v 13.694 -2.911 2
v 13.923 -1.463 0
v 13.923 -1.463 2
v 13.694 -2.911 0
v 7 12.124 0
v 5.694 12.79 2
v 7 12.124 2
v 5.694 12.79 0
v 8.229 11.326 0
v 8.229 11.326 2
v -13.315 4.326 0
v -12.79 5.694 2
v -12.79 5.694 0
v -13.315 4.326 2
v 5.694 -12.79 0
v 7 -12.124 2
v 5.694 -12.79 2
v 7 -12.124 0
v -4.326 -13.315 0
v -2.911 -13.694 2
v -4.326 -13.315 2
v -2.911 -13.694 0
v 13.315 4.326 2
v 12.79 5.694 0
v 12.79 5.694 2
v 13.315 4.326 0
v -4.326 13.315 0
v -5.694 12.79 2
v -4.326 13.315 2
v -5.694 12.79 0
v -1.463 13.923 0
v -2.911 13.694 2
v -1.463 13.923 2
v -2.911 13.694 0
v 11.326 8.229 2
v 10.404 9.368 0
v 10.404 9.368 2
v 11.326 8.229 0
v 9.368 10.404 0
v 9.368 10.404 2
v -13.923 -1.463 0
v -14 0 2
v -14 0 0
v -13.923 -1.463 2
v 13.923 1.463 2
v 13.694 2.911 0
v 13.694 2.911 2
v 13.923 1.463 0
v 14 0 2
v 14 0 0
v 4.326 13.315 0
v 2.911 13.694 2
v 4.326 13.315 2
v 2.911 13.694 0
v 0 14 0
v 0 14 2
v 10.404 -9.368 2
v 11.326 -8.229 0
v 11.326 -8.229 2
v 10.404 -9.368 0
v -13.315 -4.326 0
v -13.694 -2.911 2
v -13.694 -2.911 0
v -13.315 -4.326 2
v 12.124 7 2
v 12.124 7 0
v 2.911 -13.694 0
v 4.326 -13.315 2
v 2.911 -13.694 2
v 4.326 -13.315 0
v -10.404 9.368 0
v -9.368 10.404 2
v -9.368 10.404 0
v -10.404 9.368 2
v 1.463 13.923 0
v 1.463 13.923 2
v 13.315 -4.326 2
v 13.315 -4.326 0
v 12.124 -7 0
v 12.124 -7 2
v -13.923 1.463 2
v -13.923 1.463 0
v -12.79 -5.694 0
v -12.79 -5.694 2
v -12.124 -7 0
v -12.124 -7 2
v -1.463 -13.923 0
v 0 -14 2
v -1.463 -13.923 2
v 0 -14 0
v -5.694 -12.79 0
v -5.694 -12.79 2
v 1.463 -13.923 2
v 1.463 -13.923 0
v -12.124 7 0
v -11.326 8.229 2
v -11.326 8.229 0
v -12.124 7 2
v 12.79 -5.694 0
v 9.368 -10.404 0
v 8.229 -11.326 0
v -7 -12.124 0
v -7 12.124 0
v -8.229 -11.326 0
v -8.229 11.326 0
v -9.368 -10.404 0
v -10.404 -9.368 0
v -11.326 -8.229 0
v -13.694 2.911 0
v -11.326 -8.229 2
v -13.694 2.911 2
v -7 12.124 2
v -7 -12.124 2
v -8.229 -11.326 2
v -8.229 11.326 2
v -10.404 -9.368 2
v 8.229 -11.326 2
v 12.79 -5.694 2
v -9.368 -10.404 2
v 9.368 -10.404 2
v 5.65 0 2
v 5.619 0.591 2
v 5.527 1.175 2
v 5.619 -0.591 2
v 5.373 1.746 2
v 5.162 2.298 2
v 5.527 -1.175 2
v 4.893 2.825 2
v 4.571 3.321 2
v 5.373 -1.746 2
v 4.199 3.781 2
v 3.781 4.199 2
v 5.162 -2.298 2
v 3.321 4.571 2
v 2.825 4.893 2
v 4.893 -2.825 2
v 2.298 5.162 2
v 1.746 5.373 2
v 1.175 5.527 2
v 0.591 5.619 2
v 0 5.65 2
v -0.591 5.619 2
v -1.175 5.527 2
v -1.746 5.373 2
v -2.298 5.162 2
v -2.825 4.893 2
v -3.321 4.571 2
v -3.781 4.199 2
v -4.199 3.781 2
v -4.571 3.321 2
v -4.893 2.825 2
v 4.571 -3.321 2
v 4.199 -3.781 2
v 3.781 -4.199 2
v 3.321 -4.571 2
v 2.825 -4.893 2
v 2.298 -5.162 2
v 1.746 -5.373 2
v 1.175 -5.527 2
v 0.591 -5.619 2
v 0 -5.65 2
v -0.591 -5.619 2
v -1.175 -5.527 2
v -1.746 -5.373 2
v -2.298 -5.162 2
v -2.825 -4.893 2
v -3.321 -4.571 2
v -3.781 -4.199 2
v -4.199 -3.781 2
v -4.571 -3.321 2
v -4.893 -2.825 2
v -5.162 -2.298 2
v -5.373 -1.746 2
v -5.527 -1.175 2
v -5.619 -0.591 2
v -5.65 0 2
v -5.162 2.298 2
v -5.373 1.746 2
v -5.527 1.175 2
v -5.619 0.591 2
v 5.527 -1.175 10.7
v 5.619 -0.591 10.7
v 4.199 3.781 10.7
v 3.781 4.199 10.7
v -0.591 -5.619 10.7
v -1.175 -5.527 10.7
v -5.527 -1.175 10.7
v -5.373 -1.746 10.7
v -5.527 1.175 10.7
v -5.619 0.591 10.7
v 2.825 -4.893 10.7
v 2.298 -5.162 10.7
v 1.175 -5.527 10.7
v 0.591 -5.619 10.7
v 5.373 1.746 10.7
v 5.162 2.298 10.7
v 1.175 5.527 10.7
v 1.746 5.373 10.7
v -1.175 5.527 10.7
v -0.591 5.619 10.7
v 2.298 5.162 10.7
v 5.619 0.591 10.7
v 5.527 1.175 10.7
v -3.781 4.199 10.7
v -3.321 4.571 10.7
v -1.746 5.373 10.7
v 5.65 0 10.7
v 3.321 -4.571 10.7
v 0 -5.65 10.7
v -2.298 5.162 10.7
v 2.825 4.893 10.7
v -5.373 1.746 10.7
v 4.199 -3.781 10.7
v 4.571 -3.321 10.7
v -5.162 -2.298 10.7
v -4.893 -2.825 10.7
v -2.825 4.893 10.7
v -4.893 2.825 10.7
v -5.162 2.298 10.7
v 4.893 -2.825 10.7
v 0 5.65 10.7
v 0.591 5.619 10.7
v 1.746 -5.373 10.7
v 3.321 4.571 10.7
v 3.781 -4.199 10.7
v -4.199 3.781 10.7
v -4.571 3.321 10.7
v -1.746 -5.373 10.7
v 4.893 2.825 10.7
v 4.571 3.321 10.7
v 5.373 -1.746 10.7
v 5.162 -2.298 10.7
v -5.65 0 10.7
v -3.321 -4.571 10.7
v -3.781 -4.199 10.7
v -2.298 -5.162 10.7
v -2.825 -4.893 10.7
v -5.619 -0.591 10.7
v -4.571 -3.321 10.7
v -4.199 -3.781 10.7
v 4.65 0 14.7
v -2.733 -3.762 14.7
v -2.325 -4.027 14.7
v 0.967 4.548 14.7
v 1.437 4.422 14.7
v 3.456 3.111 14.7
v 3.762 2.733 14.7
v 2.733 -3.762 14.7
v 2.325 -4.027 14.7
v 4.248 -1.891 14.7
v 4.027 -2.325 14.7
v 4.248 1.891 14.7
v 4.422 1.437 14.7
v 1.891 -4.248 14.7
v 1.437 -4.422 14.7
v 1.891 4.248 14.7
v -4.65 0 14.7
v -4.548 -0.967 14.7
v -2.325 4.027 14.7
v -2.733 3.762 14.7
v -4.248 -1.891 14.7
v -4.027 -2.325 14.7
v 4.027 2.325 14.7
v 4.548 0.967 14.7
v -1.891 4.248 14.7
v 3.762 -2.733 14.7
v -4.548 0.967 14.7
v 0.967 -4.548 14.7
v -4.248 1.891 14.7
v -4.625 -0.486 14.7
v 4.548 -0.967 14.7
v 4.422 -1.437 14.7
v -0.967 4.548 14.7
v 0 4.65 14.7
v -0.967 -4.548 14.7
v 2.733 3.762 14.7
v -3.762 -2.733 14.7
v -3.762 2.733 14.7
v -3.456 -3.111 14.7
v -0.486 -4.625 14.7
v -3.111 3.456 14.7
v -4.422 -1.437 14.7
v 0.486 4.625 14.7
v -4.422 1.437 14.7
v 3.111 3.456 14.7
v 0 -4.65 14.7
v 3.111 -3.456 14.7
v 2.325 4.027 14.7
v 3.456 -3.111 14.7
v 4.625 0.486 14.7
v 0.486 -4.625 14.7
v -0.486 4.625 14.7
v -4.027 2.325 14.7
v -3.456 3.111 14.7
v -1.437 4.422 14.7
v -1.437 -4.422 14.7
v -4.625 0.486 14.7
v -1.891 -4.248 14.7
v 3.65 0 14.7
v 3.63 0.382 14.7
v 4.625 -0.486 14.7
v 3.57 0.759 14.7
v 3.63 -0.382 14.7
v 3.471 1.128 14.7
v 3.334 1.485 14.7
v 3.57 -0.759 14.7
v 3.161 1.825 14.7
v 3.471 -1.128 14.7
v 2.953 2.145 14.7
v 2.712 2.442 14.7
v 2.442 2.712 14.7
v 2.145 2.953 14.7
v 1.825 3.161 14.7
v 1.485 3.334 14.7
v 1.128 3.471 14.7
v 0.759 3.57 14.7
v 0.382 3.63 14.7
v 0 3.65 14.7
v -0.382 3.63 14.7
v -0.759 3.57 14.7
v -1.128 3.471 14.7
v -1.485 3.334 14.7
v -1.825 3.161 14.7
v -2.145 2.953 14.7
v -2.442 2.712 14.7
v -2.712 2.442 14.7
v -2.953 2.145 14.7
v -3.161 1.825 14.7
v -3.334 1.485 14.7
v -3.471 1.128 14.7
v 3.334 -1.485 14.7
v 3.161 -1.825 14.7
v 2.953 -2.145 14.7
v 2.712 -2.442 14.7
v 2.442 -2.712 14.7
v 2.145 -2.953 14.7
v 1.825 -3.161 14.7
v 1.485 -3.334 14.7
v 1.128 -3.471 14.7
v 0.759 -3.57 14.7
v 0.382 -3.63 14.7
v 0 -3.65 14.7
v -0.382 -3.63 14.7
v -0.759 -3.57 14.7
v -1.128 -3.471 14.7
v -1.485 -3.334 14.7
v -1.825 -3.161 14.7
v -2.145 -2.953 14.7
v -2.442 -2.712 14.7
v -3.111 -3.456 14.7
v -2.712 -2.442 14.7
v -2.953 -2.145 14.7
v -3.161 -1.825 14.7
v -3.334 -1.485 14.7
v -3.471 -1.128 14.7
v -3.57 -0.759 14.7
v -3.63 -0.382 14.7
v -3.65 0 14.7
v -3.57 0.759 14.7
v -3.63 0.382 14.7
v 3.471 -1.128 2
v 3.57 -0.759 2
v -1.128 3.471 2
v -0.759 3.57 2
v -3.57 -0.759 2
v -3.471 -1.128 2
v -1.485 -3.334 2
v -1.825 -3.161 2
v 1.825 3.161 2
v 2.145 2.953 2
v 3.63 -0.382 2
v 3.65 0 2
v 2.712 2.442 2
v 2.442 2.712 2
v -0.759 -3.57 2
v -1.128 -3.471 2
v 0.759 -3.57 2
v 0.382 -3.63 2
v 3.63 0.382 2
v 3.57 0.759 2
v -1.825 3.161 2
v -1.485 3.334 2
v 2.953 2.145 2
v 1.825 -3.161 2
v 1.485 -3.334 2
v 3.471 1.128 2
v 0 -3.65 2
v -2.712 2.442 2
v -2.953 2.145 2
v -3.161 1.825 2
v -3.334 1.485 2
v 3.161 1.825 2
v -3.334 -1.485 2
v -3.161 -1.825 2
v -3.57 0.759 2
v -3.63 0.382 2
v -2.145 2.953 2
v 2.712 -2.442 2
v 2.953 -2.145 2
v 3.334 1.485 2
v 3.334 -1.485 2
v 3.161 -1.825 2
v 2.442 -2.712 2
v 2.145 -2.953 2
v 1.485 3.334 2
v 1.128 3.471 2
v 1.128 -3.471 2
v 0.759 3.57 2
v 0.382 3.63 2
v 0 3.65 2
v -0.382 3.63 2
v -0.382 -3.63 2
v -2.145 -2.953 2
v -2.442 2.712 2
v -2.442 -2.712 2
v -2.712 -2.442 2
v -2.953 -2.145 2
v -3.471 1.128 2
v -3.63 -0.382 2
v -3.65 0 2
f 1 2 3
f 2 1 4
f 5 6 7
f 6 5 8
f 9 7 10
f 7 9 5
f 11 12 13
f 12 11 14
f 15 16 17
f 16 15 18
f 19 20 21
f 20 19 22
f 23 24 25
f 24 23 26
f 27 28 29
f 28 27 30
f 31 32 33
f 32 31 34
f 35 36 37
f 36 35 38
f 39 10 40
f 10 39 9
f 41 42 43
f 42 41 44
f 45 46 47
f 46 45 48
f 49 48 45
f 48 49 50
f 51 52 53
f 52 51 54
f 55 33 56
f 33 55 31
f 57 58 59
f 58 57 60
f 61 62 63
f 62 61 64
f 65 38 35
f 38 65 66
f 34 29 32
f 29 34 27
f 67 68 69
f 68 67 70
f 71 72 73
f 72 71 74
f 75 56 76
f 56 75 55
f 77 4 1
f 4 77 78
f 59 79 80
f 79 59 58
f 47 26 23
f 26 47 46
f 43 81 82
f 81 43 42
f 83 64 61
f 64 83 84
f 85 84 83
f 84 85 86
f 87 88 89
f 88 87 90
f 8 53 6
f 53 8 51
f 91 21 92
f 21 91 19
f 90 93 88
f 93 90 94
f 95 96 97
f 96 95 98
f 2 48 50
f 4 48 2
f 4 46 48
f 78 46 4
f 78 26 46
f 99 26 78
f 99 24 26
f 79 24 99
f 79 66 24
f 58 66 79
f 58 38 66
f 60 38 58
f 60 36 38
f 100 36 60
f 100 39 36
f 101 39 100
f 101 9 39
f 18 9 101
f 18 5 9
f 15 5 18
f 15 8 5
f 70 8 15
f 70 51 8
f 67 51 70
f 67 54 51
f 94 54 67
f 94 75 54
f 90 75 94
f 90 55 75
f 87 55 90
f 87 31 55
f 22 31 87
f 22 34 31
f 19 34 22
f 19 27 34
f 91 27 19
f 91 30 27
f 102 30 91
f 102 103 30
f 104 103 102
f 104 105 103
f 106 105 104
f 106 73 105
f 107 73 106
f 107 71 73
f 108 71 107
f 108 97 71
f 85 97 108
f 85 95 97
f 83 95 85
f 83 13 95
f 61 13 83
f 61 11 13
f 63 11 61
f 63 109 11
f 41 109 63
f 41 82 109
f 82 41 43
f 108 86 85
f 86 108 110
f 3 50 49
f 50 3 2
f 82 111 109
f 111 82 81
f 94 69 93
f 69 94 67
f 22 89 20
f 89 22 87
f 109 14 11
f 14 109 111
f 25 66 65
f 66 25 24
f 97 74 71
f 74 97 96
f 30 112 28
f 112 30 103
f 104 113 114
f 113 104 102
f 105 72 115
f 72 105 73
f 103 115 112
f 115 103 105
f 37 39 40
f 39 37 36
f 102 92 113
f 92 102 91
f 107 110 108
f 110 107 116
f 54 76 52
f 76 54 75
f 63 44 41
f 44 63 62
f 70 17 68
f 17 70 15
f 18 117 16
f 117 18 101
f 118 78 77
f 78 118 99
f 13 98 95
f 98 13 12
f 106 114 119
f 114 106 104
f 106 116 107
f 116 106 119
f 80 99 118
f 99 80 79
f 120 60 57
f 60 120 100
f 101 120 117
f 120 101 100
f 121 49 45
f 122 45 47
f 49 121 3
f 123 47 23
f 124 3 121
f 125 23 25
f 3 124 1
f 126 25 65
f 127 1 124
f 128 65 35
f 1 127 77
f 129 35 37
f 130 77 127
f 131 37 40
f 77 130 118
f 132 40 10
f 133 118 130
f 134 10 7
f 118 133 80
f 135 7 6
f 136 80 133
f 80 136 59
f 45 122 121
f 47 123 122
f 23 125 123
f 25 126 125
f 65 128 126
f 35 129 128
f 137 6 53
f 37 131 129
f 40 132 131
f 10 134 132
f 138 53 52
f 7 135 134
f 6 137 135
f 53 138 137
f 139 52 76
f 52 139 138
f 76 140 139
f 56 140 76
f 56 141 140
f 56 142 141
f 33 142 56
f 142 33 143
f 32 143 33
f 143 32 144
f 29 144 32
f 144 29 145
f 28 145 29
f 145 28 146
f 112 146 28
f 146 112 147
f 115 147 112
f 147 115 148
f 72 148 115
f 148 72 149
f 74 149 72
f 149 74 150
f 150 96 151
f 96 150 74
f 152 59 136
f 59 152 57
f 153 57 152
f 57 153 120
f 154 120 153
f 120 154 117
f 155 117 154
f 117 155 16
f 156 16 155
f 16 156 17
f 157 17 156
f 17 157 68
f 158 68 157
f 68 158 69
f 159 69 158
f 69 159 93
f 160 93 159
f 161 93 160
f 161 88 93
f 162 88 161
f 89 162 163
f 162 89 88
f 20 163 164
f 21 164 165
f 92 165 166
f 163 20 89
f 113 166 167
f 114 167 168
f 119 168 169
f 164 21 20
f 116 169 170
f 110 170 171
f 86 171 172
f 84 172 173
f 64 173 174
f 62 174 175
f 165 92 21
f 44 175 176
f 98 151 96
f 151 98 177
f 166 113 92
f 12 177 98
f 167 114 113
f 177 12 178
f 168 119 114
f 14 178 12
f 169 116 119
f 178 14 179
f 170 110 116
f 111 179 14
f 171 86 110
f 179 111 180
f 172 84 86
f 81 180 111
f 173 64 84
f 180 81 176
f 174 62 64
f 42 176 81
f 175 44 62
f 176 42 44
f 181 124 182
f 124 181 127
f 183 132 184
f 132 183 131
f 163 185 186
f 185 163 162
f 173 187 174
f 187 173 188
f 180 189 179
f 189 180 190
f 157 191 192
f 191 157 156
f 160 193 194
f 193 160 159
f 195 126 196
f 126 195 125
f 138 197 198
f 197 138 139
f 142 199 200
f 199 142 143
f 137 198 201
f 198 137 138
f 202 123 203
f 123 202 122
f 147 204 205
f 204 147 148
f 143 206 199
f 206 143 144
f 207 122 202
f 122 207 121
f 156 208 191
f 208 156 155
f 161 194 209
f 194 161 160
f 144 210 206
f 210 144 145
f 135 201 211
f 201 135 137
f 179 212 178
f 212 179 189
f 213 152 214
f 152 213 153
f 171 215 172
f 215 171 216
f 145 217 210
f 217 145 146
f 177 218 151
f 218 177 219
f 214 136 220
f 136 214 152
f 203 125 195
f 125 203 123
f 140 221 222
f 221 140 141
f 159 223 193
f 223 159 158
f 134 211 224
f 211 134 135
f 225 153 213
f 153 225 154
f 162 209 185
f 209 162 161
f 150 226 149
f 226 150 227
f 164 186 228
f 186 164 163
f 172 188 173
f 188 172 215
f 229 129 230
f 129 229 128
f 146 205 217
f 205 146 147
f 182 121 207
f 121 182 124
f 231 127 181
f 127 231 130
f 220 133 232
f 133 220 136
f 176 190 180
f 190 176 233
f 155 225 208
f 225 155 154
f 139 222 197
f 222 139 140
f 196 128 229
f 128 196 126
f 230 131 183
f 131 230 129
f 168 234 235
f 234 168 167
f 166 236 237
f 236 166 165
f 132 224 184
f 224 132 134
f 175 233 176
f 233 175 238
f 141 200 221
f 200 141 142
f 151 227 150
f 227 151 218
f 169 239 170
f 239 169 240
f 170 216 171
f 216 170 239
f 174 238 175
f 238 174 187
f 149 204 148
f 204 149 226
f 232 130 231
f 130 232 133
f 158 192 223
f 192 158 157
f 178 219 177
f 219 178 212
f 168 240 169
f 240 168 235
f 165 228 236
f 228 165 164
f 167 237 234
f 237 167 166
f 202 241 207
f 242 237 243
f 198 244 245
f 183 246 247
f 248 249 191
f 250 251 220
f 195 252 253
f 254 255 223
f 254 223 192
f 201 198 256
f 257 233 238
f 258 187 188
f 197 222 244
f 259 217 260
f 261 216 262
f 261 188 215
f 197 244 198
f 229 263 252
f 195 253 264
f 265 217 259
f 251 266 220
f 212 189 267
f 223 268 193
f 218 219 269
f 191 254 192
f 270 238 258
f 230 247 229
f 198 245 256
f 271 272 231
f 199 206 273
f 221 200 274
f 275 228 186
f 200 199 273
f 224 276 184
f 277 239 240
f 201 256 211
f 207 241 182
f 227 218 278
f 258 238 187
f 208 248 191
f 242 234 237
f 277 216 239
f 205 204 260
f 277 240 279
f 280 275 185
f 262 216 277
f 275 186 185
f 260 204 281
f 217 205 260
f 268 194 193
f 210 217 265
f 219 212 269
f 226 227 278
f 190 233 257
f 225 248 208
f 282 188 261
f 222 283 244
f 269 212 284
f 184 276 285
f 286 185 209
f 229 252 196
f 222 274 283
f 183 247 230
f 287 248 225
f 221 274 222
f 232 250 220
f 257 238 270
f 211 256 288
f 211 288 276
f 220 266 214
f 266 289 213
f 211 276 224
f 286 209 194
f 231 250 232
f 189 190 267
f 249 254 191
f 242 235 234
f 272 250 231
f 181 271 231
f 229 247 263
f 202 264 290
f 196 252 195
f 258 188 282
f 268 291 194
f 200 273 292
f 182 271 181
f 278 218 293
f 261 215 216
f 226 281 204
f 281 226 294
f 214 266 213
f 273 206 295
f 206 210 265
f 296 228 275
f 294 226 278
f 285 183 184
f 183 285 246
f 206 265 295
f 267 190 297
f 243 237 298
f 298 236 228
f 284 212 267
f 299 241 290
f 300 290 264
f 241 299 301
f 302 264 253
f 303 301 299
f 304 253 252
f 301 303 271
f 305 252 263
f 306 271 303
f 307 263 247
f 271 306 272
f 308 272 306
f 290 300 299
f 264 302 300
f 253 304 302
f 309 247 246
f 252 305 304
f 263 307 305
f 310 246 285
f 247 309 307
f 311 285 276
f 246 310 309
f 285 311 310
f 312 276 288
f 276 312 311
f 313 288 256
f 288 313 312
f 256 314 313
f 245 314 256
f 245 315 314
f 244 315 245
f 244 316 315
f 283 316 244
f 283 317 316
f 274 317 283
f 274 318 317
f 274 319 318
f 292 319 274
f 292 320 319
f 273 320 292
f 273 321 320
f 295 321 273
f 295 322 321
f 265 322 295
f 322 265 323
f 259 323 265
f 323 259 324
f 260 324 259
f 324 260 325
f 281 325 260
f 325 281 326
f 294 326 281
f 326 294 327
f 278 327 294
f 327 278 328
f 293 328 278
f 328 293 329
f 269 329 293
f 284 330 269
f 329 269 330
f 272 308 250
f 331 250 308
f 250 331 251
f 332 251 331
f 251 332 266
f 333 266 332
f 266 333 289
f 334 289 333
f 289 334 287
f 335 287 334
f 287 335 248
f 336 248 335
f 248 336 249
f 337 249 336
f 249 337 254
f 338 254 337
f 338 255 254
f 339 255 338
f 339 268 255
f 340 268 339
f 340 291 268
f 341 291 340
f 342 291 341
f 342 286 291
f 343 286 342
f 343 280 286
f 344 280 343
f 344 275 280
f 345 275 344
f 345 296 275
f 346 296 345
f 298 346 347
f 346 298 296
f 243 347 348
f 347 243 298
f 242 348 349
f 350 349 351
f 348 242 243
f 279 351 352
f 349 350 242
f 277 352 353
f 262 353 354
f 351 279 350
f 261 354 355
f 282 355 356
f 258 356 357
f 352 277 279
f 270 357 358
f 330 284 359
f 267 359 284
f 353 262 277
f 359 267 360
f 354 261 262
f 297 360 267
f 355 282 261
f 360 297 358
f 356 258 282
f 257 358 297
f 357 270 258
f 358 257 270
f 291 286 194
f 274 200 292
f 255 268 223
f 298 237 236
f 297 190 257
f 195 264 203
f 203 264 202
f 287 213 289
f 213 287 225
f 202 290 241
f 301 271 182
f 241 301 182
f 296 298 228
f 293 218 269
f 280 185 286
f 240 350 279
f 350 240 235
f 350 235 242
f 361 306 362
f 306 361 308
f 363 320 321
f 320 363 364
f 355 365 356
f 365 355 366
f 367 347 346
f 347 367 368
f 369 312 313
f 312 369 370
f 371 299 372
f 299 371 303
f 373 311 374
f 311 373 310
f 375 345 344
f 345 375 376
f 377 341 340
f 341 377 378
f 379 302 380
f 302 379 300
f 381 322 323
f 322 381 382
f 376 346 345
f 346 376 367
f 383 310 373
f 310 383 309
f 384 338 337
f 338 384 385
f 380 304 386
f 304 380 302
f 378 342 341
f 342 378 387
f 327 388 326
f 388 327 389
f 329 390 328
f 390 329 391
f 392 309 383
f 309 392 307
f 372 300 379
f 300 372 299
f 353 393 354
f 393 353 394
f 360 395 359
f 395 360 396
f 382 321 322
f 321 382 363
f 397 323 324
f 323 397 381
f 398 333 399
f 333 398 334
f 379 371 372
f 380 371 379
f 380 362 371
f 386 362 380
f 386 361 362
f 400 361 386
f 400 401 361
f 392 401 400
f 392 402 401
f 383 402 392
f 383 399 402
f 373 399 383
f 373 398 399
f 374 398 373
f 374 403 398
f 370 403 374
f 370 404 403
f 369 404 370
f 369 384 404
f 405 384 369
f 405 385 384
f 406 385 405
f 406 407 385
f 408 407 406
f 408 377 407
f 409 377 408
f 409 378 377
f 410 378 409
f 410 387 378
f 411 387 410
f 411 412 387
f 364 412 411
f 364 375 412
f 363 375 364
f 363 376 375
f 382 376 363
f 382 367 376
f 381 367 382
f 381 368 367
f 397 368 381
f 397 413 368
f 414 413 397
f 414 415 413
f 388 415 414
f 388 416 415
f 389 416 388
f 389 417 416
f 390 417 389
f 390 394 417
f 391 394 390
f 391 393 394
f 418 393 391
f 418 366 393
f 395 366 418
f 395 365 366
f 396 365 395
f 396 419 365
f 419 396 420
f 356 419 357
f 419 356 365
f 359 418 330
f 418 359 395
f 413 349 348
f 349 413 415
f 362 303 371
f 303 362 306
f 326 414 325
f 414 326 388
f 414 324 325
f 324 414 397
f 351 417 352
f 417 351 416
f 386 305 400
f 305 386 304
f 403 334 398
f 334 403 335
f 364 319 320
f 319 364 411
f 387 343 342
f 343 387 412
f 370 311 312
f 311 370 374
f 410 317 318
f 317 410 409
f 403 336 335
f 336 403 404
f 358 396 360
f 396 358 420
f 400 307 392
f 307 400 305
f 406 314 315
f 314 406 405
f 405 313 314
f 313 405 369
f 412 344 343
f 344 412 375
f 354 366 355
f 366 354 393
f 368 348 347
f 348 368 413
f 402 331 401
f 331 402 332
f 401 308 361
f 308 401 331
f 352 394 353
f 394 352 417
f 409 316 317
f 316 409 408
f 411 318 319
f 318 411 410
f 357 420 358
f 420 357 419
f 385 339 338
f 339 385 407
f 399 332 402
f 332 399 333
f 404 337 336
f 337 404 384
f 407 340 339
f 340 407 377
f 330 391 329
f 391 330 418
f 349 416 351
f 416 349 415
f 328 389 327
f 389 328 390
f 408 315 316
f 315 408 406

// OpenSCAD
// drzak zarazky dveri
$fn=60;
stena = 2;
dout = 28;
din = 11.3;
hh = 12.7;
// hvicka = 27;

module holder_door_stopper() {
    difference() {
         union() {
              cylinder(d=dout,h=stena);
              translate([0,0,stena]) cylinder(d=din,h=hh-2*stena);
              translate([0,0,hh-stena]) cylinder(d1=din,d2=din-stena,h=2*stena);
             }
         union() {
              translate([0,0,stena]) cylinder(d=din-2*stena,h=hh+stena);
             }    
        }
    
}


holder_door_stopper();
